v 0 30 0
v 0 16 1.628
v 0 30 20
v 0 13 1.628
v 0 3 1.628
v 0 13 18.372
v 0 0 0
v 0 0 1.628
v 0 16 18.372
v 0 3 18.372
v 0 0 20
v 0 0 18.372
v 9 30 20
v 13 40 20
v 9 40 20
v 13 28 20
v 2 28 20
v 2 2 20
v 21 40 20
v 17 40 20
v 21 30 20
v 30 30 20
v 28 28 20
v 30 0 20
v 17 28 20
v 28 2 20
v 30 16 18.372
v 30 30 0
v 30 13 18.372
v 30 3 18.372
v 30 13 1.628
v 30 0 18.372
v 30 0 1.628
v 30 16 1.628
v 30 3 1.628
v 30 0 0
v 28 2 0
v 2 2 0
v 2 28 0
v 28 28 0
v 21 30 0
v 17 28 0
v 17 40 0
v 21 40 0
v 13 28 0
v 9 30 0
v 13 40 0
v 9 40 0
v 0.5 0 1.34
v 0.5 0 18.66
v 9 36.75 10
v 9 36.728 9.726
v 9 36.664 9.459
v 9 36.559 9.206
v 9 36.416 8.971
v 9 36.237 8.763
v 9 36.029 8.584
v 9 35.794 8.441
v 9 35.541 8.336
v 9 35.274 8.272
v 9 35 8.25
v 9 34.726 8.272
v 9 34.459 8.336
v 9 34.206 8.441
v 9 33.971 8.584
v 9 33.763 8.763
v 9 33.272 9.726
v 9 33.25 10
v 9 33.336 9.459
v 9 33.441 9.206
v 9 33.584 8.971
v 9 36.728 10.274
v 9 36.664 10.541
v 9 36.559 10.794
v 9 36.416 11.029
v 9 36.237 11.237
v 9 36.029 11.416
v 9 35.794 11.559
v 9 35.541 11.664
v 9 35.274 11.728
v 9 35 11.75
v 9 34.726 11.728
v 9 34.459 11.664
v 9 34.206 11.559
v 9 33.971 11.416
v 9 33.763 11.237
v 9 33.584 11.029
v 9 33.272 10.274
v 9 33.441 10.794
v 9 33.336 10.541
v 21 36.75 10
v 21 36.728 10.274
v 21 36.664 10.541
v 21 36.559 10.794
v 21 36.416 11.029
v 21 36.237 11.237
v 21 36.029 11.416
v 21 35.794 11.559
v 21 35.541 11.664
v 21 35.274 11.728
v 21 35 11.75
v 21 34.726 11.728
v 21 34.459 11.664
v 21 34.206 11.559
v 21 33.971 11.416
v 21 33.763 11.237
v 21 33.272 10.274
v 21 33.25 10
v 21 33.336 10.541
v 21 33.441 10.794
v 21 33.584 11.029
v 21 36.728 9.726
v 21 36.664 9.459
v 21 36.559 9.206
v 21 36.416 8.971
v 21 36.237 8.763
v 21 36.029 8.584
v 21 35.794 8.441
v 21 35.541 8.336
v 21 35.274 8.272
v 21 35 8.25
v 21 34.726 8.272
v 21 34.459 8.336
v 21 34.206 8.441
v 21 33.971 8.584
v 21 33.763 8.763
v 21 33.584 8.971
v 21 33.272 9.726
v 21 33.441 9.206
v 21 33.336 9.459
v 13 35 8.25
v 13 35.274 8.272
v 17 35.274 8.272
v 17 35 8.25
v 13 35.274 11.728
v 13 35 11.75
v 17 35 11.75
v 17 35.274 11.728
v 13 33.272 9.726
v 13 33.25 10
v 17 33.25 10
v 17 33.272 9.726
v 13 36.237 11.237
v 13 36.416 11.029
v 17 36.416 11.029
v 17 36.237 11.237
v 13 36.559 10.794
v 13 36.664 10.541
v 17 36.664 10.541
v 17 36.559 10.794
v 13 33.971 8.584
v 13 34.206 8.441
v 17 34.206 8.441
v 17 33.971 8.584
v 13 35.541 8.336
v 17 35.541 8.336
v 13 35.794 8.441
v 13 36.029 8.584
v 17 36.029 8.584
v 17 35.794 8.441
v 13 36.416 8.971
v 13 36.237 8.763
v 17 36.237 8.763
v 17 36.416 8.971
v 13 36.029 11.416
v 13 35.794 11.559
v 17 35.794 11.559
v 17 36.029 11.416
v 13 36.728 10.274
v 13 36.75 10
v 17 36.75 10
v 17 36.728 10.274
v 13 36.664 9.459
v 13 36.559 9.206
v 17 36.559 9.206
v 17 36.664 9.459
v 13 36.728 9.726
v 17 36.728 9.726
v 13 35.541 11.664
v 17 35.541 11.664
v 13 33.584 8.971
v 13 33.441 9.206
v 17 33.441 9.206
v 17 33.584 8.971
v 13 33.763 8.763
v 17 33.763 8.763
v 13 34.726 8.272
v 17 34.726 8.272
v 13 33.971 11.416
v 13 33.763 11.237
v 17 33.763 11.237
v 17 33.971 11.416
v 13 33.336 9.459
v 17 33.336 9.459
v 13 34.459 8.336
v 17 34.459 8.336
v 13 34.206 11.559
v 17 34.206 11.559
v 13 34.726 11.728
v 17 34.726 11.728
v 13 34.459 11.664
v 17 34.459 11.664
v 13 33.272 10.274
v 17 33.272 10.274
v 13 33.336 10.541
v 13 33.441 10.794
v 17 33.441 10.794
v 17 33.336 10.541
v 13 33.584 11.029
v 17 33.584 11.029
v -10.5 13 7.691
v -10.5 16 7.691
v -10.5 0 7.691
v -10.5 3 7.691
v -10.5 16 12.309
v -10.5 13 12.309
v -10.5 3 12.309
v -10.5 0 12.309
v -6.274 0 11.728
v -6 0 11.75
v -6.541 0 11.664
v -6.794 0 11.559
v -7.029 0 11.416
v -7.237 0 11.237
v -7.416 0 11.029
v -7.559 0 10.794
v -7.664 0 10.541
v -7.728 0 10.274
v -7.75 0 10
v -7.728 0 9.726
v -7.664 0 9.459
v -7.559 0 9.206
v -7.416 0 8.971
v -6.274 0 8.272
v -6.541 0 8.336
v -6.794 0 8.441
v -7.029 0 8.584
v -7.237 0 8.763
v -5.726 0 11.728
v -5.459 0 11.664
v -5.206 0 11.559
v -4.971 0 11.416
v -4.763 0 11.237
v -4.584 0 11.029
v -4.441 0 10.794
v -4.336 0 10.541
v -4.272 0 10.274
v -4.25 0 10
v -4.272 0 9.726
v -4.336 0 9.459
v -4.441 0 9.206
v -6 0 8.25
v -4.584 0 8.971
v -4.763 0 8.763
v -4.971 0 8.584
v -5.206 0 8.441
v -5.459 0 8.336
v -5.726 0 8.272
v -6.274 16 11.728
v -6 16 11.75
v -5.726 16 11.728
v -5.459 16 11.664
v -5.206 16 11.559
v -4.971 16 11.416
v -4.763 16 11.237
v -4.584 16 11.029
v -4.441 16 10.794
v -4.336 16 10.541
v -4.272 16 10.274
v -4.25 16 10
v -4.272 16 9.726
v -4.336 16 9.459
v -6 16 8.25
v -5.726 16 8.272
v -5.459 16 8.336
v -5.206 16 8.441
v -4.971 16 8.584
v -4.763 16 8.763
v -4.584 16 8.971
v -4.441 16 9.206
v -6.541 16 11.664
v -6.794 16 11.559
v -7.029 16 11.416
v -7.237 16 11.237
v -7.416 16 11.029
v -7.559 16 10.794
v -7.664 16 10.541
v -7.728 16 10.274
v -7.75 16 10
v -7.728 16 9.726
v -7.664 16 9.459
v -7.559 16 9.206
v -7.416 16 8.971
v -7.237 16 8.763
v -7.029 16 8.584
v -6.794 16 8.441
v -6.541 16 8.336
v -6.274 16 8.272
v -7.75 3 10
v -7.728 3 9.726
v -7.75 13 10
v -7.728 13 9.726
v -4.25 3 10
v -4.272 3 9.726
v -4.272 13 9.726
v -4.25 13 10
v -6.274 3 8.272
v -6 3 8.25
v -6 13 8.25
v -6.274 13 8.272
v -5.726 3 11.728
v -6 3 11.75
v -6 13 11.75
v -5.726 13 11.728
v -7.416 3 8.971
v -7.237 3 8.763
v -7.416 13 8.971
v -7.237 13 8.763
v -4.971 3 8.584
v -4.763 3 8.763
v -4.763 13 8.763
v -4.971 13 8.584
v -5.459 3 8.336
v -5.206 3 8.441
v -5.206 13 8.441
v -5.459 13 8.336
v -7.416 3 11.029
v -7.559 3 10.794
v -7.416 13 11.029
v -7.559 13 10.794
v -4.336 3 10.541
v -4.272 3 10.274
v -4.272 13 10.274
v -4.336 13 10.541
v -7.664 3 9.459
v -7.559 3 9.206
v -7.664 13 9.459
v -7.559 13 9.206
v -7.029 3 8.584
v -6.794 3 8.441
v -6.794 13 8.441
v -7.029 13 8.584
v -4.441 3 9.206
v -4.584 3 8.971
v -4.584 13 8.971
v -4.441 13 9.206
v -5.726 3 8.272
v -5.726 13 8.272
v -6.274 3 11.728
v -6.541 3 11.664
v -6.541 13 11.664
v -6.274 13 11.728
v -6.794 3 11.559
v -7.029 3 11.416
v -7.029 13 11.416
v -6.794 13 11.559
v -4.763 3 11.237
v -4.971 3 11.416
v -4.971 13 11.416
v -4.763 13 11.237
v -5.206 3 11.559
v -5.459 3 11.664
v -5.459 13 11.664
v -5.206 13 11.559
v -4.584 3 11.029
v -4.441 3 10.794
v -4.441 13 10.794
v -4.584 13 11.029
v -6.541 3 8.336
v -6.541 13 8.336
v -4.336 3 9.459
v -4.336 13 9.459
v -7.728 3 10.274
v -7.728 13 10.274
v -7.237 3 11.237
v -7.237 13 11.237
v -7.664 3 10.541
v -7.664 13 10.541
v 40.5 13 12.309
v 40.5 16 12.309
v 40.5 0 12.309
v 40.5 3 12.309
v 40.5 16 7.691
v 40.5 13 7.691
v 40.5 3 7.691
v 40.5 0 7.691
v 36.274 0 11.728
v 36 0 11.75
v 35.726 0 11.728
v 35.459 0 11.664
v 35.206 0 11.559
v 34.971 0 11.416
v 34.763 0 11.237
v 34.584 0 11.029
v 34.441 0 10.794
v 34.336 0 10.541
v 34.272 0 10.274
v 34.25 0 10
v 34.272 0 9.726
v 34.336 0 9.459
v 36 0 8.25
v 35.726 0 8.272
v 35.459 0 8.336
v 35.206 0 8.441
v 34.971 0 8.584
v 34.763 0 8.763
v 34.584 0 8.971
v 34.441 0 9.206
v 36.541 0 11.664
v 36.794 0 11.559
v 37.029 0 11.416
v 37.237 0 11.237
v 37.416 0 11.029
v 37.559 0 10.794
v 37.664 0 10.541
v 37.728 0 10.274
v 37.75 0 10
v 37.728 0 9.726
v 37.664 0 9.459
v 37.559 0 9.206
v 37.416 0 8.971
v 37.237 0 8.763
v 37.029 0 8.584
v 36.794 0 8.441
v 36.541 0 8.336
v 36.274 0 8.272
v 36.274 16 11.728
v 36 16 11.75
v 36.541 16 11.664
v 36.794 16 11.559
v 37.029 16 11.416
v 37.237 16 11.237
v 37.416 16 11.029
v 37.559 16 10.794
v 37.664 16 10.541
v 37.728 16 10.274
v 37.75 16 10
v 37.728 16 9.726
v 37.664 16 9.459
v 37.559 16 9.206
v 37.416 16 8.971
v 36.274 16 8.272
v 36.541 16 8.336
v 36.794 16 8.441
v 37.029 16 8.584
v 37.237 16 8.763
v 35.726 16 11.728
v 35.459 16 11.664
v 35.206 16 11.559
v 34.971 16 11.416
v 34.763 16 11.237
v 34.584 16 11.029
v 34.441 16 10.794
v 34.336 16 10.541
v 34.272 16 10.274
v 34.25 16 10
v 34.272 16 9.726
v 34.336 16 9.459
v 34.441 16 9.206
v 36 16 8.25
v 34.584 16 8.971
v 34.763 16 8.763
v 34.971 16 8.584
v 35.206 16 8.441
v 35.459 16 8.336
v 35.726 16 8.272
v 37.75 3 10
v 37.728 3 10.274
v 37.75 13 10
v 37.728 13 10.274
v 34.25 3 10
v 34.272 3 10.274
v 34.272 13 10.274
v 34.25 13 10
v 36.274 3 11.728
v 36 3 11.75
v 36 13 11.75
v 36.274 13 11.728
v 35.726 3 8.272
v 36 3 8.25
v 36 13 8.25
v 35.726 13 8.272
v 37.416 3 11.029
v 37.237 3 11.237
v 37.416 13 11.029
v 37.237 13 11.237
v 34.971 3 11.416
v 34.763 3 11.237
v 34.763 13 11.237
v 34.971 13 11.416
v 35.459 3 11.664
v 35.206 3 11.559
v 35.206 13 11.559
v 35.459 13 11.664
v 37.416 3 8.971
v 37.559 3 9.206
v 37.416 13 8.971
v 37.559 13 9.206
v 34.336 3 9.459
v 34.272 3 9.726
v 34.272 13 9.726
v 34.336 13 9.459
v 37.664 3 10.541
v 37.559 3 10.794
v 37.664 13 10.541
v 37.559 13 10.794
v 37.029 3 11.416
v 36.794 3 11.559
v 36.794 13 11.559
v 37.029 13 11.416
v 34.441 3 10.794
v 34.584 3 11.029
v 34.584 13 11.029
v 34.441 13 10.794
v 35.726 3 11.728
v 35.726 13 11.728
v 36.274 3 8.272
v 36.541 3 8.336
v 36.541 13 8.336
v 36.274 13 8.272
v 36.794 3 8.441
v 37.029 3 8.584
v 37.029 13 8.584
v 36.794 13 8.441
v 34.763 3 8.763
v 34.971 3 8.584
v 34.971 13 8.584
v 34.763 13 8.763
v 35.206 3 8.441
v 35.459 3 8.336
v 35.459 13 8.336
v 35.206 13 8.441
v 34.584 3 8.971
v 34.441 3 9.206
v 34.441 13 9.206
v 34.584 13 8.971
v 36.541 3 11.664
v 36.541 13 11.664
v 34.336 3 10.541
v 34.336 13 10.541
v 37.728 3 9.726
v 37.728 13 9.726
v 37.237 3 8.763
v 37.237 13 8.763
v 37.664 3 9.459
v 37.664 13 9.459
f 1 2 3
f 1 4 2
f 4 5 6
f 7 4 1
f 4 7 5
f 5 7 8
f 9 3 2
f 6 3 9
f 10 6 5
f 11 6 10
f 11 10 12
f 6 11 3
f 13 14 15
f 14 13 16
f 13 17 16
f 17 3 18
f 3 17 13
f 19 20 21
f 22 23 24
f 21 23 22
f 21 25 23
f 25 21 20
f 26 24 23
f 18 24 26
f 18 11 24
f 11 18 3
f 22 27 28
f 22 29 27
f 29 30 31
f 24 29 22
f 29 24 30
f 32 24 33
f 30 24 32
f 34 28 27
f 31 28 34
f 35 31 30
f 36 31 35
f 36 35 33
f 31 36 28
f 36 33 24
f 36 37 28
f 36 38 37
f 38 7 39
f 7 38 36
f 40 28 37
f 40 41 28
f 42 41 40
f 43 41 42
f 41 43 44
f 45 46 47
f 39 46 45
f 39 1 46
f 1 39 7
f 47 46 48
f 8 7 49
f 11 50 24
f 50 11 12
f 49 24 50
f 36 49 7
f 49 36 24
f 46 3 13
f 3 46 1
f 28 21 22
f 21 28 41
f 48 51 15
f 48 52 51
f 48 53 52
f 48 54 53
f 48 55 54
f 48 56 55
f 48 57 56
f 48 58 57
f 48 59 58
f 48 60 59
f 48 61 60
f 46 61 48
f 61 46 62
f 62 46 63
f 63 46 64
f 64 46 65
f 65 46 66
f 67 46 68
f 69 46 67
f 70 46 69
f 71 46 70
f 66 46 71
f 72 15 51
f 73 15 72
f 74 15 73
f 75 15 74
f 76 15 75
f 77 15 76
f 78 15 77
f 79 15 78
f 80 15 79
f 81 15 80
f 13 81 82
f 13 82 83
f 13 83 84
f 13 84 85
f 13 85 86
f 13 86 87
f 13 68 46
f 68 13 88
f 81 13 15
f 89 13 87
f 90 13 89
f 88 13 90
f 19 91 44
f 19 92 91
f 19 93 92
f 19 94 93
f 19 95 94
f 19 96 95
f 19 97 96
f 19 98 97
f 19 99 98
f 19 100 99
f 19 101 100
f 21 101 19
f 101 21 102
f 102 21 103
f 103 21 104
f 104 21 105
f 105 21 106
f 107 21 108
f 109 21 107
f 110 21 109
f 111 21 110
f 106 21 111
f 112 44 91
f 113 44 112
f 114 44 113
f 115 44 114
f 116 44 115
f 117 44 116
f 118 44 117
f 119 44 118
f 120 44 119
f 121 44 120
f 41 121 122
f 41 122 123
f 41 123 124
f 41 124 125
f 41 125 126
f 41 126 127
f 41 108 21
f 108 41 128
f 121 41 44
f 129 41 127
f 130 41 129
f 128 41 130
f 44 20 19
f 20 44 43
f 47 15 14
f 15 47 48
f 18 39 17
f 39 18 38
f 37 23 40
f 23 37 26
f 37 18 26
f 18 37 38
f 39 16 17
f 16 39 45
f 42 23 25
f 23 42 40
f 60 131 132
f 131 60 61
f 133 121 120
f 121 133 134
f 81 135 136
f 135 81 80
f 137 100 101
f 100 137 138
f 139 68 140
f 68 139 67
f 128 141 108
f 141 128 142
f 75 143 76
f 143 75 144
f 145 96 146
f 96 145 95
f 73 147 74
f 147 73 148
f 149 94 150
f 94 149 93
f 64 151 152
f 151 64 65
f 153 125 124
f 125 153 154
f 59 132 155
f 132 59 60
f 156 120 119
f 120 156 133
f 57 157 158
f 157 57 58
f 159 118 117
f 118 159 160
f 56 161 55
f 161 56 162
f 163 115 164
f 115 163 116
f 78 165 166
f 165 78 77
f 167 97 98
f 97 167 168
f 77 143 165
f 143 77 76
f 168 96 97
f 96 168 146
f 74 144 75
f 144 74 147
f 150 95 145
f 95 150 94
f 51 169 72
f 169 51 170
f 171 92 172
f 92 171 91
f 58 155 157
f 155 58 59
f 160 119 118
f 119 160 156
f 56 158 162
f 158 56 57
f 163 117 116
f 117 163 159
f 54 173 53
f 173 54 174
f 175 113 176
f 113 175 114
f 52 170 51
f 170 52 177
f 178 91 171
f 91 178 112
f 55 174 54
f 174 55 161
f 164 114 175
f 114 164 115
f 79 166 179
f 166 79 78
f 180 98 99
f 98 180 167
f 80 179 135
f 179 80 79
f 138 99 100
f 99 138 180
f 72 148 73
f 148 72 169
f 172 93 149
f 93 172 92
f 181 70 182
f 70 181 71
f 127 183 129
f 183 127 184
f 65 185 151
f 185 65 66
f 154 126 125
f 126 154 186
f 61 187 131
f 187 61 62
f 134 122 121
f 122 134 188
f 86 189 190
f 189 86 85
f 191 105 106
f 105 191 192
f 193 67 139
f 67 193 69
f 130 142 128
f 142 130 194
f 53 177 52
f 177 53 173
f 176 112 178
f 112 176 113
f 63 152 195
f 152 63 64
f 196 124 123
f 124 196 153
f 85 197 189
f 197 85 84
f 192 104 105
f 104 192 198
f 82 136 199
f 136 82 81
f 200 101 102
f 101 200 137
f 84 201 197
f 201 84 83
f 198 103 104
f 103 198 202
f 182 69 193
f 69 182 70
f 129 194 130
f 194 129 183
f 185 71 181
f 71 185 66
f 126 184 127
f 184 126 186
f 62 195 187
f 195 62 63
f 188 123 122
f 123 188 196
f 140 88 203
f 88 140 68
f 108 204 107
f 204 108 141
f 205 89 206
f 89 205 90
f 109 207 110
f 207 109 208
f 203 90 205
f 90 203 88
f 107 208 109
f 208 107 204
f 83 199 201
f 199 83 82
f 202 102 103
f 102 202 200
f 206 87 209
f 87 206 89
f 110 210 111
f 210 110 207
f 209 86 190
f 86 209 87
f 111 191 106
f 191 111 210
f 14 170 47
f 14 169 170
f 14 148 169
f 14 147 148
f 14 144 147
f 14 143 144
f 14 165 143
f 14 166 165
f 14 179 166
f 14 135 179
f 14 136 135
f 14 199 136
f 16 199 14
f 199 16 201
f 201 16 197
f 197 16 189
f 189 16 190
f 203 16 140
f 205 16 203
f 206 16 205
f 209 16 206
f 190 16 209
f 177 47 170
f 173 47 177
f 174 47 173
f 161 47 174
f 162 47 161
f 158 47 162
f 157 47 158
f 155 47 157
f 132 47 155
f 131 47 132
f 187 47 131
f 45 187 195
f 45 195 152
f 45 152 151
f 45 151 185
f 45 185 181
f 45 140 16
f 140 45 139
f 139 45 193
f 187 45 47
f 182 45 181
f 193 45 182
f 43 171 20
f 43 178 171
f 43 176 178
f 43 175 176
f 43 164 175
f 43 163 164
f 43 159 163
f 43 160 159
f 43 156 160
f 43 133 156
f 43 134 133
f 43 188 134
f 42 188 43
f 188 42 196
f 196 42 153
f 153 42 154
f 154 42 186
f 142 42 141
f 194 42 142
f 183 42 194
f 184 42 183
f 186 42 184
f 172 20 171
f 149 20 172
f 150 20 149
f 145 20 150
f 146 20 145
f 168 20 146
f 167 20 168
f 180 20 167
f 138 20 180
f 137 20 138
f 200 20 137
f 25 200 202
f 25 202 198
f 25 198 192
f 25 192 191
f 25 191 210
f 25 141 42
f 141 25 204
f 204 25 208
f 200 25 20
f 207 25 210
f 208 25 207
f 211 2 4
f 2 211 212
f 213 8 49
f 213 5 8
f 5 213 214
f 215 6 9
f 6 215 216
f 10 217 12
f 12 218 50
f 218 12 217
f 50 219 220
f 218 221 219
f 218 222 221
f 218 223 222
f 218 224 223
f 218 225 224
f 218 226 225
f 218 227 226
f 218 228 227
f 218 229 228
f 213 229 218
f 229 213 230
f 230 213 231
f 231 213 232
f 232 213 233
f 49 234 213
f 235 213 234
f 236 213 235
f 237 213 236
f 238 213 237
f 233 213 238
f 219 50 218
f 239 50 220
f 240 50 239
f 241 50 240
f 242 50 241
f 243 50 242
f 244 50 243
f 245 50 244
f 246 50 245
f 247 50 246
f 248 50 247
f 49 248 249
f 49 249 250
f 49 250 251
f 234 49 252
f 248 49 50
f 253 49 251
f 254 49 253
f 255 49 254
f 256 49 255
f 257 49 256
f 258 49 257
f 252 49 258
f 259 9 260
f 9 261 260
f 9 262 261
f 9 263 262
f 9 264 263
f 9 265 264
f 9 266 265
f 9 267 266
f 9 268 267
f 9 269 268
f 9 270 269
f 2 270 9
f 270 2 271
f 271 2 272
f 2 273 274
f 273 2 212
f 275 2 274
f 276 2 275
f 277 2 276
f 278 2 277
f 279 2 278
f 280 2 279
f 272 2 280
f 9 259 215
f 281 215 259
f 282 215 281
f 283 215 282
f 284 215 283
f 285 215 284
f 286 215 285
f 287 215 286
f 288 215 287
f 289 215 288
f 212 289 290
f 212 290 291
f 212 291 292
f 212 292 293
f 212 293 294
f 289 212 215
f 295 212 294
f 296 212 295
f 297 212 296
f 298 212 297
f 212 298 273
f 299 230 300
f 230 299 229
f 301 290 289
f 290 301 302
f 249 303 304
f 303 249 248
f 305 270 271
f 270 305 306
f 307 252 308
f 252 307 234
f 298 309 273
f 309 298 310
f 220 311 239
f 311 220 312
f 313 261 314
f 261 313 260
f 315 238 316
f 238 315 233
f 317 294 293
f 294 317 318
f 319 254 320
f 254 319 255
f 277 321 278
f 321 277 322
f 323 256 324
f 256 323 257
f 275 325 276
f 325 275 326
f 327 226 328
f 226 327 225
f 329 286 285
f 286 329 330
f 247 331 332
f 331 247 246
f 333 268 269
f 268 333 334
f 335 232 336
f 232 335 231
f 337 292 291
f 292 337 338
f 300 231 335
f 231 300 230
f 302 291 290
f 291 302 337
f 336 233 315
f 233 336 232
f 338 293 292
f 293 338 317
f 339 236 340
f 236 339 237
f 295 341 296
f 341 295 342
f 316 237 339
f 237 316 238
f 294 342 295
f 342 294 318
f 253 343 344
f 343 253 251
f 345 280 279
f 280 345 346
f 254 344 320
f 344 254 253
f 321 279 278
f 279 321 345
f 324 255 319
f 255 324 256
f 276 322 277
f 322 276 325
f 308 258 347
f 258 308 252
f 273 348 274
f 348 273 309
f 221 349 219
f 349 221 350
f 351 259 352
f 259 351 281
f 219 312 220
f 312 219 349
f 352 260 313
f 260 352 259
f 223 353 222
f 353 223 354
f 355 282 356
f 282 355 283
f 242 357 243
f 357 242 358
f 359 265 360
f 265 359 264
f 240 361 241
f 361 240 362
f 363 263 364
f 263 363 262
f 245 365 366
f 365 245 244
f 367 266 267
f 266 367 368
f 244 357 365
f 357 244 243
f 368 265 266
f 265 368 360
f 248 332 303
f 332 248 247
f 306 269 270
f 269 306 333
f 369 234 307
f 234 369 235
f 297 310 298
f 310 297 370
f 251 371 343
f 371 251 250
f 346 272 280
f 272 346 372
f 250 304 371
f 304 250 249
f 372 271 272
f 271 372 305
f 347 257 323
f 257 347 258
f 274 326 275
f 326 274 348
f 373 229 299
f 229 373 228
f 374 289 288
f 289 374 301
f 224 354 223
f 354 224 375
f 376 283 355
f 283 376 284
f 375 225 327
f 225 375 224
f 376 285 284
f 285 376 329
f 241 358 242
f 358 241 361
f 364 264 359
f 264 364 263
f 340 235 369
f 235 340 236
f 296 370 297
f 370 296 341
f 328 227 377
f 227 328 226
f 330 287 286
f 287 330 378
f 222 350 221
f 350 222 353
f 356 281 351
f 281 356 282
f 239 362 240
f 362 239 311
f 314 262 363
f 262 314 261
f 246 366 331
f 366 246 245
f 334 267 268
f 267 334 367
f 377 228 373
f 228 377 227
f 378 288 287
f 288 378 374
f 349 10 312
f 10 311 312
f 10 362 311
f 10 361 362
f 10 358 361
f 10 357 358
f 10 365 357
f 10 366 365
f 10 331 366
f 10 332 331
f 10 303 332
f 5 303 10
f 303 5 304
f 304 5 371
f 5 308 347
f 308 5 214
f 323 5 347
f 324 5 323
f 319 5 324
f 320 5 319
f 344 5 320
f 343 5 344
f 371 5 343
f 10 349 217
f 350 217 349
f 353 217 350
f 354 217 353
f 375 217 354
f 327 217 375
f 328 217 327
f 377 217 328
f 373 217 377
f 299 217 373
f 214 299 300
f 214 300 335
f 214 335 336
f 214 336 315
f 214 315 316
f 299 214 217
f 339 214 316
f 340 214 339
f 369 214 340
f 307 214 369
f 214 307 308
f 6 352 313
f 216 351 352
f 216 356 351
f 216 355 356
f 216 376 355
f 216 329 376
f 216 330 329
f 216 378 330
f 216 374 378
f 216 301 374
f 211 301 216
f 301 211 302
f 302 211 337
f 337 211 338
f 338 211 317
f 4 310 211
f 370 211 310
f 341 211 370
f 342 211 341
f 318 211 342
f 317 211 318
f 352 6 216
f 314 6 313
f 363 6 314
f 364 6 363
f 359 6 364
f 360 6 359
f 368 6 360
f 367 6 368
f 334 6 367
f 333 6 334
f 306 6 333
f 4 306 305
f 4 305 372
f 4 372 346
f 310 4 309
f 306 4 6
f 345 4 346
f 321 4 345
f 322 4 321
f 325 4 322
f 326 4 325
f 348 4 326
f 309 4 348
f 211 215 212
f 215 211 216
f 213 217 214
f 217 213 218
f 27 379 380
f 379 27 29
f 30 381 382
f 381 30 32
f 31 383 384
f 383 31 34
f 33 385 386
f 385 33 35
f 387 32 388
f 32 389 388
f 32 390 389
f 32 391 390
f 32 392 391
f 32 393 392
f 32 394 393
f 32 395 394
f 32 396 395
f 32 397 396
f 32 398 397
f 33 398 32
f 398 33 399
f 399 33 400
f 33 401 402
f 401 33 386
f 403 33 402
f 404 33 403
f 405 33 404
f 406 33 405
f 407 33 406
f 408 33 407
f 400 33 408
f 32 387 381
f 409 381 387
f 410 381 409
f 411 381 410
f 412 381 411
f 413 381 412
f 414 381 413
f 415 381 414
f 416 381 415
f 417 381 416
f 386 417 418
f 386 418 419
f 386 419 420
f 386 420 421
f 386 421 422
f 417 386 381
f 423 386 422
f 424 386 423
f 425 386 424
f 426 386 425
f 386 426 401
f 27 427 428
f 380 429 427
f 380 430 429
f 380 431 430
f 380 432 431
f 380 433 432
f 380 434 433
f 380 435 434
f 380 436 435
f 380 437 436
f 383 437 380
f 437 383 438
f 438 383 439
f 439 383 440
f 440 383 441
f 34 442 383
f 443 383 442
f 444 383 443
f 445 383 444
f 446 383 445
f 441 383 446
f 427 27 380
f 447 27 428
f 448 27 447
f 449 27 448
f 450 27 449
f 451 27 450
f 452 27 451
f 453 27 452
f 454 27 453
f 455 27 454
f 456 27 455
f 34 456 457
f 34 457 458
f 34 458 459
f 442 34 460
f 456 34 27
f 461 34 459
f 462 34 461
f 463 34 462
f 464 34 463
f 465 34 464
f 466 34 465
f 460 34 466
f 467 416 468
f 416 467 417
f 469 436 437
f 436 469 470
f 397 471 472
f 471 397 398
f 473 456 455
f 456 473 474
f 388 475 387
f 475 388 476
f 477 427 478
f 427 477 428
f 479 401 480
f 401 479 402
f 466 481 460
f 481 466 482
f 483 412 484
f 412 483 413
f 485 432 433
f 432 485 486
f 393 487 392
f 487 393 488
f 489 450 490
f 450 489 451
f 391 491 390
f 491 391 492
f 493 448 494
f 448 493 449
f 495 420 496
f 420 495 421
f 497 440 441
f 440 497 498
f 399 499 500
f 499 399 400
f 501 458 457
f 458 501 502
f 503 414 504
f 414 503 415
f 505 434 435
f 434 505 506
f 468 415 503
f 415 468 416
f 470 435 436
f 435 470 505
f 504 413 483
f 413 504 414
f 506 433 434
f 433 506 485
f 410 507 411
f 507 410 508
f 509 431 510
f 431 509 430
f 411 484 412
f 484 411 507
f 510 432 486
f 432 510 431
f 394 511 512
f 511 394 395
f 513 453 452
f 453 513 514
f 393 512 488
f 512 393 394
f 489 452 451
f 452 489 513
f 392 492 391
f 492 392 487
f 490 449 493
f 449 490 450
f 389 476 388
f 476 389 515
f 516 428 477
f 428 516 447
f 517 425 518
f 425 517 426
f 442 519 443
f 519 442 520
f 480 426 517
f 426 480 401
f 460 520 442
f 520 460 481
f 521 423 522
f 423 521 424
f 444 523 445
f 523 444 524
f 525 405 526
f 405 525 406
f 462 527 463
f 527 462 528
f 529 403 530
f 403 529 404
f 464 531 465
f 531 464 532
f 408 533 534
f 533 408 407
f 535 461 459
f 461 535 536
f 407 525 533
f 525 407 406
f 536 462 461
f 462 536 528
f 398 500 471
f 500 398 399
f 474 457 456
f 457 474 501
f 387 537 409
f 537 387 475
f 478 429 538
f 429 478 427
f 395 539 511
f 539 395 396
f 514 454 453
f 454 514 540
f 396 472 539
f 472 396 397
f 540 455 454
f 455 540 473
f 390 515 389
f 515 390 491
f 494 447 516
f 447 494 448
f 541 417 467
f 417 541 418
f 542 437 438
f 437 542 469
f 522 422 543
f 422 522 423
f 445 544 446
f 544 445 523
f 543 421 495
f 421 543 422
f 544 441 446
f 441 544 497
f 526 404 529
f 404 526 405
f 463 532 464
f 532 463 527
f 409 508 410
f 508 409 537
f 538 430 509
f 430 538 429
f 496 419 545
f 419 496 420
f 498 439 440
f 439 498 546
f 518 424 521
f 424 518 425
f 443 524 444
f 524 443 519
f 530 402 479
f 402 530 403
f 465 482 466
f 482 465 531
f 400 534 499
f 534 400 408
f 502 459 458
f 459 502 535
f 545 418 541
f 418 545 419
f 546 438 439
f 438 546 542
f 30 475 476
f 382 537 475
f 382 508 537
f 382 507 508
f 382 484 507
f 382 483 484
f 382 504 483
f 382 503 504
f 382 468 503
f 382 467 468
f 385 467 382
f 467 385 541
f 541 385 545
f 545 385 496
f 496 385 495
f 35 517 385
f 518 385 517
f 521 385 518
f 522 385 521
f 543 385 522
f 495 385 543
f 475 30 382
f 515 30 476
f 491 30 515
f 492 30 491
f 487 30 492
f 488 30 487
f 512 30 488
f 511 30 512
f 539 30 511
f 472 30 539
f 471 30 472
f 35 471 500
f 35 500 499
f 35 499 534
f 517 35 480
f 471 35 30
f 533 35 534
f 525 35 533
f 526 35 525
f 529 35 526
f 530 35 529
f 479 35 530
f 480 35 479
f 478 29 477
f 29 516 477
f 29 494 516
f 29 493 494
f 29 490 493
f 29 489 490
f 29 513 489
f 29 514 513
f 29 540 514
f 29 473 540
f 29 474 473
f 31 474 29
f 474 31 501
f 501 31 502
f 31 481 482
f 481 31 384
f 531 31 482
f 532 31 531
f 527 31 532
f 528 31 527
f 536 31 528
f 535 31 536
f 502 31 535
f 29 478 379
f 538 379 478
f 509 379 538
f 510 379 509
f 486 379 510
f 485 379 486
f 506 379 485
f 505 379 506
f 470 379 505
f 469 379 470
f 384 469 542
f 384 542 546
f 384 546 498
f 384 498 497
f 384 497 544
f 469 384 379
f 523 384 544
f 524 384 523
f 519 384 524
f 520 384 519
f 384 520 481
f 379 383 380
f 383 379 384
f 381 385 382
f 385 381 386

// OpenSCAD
// Pi Camera Mount Core
// by Ming-Dao Chia
// Last update: 2/3/2017
// for the Borevitz Lab, Australian National University

// screw settings
screw_correction=.5;
base_screw_size=3;
screws=base_screw_size+screw_correction;
screw_res=40;

// Goes around the aluminum bar.
module frame(length, thickness){
    sides=thickness*2;
    rod_size=26;
    difference(){
        union(){
            cube([rod_size+sides,rod_size+sides,length]);
            translate([(rod_size+sides)/2-sides*1.5,rod_size+sides,0])
            cube([sides*3, 10,length]);
        }
        translate([thickness,thickness,-1])
        cube([rod_size,rod_size,length+2]);
        // top screw
        translate([0,rod_size+sides+5,length/2])
        rotate([0,90,0])
        cylinder(25,screws/2,screws/2,$fn=screw_res);
        // spacer for top screw
        translate([(rod_size+sides)/2-sides/2,rod_size,-1])
        cube([sides,rod_size,length+2]);
        
    }
}

// attaches to arm
module joint_screw(hole_size){
    triangle_size=10;
    difference(){
        cylinder(16,triangle_size,triangle_size,$fn=3);
        translate([1.5,0,-0.5])
        cylinder(25,hole_size/2,hole_size/2,$fn=screw_res);
        translate([0,0,3])
        cylinder(10,triangle_size*2,triangle_size*2, $fn=3);
        translate([6,-3,-1])
        cube([10,10,20]);
    }
}

union(){
    frame(20,2);
    rotate([90,180,0])
    translate([4.5,-10,-16])
    joint_screw(screws);
    rotate([90,0,0])
    translate([34.5,10,-16])
    joint_screw(screws);
}
